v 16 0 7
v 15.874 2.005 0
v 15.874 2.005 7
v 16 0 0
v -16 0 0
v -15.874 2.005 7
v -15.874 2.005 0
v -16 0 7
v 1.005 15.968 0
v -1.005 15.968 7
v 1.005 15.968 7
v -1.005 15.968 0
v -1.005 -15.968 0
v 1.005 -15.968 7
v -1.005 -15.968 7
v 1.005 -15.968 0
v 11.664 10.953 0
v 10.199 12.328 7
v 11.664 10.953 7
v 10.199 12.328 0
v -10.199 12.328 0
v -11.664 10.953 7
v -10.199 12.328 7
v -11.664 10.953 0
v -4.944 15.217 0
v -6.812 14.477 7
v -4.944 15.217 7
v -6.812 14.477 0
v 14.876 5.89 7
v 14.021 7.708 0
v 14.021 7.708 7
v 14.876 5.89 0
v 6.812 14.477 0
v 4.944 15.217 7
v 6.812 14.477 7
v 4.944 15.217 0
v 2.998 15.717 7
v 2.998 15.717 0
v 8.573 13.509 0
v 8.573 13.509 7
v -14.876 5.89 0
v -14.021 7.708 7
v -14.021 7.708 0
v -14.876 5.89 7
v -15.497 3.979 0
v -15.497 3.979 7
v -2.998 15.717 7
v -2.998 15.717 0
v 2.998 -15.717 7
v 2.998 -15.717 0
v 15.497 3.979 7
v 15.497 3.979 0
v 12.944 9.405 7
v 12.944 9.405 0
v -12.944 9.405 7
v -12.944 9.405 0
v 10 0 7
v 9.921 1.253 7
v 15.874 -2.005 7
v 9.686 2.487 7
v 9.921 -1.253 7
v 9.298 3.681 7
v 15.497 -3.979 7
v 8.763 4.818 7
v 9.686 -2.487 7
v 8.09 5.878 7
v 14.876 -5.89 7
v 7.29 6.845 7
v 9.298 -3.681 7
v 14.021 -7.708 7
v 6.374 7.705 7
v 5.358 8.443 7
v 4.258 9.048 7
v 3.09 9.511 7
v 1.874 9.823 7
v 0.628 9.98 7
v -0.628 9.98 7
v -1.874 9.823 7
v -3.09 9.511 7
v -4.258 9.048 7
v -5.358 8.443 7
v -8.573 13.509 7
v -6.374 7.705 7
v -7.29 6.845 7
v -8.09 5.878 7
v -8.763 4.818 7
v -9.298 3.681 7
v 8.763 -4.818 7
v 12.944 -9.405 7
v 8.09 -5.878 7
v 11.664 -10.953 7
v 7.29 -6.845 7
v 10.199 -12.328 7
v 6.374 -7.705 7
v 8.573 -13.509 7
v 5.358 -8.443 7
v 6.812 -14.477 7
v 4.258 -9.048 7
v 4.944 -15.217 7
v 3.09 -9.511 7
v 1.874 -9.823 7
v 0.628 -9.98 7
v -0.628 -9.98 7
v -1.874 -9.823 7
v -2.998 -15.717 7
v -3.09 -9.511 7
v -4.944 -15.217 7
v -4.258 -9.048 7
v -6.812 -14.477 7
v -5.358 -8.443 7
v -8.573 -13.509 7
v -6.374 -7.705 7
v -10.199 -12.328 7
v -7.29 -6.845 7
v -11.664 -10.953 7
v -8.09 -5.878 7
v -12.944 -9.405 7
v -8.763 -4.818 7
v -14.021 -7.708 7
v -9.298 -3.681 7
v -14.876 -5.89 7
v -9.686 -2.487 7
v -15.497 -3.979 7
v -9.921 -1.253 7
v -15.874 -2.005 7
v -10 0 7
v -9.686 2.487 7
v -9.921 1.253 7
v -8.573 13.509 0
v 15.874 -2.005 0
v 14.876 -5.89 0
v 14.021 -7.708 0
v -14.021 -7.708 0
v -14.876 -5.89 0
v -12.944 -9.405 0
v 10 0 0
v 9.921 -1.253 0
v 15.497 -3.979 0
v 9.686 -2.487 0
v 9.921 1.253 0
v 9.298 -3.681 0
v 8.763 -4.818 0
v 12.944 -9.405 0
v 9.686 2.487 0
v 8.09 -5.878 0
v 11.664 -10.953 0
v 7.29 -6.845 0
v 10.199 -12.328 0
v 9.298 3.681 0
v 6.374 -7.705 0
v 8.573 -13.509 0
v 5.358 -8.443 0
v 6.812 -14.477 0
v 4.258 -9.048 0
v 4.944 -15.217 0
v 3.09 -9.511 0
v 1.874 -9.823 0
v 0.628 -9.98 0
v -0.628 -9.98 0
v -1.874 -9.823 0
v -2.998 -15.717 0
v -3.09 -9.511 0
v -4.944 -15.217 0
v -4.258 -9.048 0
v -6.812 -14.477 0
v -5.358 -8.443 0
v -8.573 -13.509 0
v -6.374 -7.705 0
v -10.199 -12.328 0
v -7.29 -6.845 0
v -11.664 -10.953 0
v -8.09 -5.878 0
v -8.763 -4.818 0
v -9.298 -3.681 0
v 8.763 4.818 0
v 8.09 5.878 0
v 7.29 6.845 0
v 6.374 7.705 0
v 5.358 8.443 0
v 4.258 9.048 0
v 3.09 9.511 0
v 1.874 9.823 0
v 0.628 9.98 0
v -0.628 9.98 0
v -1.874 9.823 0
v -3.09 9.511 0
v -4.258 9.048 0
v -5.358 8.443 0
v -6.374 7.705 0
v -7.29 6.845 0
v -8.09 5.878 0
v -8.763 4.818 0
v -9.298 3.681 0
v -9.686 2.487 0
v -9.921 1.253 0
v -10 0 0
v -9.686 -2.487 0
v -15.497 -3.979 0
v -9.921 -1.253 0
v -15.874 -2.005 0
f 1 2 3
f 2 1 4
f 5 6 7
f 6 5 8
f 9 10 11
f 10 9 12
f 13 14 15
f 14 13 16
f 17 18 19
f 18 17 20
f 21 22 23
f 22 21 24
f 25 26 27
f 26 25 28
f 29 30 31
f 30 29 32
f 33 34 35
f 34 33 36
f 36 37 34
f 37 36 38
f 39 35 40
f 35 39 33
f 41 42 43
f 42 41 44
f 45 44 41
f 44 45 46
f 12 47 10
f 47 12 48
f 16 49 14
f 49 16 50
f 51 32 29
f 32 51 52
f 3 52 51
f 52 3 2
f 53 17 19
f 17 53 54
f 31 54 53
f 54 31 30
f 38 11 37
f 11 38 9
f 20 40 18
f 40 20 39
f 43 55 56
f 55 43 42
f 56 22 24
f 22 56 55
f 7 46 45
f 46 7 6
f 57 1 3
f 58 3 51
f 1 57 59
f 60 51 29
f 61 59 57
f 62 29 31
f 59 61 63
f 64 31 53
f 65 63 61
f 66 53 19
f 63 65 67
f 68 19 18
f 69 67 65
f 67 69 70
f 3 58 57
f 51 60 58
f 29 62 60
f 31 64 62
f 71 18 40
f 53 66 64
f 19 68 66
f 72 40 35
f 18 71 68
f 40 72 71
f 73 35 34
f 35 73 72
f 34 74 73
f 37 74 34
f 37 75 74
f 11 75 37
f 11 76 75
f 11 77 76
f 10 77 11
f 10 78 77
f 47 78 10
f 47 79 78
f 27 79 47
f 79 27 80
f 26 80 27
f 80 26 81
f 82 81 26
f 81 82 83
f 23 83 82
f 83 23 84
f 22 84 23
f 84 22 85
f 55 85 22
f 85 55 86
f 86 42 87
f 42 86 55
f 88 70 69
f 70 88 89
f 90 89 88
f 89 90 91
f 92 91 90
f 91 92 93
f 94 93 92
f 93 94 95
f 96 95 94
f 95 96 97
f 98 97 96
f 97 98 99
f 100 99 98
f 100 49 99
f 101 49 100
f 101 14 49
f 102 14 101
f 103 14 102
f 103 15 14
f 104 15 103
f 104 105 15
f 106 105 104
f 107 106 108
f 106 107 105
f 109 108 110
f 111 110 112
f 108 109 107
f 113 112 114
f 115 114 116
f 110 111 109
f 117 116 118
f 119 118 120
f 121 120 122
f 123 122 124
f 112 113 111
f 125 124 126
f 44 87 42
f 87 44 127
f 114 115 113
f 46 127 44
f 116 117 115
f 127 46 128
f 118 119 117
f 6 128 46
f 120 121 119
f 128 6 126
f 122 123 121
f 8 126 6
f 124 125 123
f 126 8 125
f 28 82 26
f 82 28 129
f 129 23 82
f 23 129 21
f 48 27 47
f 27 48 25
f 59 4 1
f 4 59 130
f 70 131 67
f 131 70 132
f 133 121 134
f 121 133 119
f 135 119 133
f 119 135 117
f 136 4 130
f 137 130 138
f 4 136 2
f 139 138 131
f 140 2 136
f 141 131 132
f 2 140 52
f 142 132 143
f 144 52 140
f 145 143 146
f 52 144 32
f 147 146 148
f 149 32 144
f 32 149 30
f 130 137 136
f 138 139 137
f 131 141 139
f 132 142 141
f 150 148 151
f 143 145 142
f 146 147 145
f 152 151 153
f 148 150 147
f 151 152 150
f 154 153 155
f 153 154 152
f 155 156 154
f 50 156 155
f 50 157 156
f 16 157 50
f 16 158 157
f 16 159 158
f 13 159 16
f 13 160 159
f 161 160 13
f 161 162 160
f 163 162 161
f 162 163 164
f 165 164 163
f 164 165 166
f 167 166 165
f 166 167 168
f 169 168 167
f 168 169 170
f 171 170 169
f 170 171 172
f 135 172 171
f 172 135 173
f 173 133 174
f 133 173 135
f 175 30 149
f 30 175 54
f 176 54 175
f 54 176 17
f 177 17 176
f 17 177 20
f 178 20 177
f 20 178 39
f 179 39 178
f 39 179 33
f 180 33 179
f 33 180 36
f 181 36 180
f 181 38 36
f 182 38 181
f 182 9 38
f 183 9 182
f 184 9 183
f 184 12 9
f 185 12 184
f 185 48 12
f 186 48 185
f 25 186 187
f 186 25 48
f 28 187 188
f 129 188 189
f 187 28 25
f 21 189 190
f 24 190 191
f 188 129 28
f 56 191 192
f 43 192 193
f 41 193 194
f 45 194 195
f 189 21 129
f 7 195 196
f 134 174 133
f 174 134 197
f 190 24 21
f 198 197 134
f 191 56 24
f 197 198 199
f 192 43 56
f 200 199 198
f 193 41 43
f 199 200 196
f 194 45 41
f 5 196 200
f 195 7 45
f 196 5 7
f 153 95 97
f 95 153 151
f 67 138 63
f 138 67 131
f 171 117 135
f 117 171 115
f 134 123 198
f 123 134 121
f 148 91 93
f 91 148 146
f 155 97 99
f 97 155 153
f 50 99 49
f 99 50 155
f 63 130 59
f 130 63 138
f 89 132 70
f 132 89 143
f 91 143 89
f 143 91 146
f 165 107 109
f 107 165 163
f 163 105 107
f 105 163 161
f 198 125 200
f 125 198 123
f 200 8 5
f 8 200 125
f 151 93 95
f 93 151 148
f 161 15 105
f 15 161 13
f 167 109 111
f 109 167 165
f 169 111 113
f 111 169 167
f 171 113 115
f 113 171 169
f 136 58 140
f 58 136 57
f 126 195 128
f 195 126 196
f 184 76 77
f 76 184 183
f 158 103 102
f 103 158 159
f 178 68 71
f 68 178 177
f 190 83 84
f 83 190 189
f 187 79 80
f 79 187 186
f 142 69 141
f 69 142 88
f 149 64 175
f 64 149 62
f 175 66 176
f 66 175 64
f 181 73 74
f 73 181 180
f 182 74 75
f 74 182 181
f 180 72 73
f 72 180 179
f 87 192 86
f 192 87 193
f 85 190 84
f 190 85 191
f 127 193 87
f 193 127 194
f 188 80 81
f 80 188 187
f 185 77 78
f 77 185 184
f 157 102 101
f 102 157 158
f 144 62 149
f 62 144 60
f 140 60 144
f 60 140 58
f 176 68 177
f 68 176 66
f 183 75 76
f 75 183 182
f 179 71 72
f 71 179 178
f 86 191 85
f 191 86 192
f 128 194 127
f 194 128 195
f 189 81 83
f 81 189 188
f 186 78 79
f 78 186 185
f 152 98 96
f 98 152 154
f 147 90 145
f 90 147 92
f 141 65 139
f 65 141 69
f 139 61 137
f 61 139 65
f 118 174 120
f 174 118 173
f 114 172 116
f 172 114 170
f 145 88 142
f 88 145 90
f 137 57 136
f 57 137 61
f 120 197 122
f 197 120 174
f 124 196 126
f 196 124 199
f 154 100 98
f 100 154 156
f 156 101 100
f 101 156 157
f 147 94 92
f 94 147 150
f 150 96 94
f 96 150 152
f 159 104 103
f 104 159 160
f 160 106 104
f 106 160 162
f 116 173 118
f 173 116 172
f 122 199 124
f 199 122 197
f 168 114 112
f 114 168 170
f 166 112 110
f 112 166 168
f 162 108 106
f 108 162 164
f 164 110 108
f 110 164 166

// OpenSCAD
$fn = 50;


difference() {
	union() {
		translate(v = [0, 0, 0]) {
			rotate(a = [0, 0, 0]) {
				cylinder(h = 7, r = 16.0000000000);
			}
		}
	}
	union() {
		translate(v = [0, 0, 0]) {
			rotate(a = [0, 0, 0]) {
				cylinder(h = 7, r = 10.0000000000);
			}
		}
	}
}
